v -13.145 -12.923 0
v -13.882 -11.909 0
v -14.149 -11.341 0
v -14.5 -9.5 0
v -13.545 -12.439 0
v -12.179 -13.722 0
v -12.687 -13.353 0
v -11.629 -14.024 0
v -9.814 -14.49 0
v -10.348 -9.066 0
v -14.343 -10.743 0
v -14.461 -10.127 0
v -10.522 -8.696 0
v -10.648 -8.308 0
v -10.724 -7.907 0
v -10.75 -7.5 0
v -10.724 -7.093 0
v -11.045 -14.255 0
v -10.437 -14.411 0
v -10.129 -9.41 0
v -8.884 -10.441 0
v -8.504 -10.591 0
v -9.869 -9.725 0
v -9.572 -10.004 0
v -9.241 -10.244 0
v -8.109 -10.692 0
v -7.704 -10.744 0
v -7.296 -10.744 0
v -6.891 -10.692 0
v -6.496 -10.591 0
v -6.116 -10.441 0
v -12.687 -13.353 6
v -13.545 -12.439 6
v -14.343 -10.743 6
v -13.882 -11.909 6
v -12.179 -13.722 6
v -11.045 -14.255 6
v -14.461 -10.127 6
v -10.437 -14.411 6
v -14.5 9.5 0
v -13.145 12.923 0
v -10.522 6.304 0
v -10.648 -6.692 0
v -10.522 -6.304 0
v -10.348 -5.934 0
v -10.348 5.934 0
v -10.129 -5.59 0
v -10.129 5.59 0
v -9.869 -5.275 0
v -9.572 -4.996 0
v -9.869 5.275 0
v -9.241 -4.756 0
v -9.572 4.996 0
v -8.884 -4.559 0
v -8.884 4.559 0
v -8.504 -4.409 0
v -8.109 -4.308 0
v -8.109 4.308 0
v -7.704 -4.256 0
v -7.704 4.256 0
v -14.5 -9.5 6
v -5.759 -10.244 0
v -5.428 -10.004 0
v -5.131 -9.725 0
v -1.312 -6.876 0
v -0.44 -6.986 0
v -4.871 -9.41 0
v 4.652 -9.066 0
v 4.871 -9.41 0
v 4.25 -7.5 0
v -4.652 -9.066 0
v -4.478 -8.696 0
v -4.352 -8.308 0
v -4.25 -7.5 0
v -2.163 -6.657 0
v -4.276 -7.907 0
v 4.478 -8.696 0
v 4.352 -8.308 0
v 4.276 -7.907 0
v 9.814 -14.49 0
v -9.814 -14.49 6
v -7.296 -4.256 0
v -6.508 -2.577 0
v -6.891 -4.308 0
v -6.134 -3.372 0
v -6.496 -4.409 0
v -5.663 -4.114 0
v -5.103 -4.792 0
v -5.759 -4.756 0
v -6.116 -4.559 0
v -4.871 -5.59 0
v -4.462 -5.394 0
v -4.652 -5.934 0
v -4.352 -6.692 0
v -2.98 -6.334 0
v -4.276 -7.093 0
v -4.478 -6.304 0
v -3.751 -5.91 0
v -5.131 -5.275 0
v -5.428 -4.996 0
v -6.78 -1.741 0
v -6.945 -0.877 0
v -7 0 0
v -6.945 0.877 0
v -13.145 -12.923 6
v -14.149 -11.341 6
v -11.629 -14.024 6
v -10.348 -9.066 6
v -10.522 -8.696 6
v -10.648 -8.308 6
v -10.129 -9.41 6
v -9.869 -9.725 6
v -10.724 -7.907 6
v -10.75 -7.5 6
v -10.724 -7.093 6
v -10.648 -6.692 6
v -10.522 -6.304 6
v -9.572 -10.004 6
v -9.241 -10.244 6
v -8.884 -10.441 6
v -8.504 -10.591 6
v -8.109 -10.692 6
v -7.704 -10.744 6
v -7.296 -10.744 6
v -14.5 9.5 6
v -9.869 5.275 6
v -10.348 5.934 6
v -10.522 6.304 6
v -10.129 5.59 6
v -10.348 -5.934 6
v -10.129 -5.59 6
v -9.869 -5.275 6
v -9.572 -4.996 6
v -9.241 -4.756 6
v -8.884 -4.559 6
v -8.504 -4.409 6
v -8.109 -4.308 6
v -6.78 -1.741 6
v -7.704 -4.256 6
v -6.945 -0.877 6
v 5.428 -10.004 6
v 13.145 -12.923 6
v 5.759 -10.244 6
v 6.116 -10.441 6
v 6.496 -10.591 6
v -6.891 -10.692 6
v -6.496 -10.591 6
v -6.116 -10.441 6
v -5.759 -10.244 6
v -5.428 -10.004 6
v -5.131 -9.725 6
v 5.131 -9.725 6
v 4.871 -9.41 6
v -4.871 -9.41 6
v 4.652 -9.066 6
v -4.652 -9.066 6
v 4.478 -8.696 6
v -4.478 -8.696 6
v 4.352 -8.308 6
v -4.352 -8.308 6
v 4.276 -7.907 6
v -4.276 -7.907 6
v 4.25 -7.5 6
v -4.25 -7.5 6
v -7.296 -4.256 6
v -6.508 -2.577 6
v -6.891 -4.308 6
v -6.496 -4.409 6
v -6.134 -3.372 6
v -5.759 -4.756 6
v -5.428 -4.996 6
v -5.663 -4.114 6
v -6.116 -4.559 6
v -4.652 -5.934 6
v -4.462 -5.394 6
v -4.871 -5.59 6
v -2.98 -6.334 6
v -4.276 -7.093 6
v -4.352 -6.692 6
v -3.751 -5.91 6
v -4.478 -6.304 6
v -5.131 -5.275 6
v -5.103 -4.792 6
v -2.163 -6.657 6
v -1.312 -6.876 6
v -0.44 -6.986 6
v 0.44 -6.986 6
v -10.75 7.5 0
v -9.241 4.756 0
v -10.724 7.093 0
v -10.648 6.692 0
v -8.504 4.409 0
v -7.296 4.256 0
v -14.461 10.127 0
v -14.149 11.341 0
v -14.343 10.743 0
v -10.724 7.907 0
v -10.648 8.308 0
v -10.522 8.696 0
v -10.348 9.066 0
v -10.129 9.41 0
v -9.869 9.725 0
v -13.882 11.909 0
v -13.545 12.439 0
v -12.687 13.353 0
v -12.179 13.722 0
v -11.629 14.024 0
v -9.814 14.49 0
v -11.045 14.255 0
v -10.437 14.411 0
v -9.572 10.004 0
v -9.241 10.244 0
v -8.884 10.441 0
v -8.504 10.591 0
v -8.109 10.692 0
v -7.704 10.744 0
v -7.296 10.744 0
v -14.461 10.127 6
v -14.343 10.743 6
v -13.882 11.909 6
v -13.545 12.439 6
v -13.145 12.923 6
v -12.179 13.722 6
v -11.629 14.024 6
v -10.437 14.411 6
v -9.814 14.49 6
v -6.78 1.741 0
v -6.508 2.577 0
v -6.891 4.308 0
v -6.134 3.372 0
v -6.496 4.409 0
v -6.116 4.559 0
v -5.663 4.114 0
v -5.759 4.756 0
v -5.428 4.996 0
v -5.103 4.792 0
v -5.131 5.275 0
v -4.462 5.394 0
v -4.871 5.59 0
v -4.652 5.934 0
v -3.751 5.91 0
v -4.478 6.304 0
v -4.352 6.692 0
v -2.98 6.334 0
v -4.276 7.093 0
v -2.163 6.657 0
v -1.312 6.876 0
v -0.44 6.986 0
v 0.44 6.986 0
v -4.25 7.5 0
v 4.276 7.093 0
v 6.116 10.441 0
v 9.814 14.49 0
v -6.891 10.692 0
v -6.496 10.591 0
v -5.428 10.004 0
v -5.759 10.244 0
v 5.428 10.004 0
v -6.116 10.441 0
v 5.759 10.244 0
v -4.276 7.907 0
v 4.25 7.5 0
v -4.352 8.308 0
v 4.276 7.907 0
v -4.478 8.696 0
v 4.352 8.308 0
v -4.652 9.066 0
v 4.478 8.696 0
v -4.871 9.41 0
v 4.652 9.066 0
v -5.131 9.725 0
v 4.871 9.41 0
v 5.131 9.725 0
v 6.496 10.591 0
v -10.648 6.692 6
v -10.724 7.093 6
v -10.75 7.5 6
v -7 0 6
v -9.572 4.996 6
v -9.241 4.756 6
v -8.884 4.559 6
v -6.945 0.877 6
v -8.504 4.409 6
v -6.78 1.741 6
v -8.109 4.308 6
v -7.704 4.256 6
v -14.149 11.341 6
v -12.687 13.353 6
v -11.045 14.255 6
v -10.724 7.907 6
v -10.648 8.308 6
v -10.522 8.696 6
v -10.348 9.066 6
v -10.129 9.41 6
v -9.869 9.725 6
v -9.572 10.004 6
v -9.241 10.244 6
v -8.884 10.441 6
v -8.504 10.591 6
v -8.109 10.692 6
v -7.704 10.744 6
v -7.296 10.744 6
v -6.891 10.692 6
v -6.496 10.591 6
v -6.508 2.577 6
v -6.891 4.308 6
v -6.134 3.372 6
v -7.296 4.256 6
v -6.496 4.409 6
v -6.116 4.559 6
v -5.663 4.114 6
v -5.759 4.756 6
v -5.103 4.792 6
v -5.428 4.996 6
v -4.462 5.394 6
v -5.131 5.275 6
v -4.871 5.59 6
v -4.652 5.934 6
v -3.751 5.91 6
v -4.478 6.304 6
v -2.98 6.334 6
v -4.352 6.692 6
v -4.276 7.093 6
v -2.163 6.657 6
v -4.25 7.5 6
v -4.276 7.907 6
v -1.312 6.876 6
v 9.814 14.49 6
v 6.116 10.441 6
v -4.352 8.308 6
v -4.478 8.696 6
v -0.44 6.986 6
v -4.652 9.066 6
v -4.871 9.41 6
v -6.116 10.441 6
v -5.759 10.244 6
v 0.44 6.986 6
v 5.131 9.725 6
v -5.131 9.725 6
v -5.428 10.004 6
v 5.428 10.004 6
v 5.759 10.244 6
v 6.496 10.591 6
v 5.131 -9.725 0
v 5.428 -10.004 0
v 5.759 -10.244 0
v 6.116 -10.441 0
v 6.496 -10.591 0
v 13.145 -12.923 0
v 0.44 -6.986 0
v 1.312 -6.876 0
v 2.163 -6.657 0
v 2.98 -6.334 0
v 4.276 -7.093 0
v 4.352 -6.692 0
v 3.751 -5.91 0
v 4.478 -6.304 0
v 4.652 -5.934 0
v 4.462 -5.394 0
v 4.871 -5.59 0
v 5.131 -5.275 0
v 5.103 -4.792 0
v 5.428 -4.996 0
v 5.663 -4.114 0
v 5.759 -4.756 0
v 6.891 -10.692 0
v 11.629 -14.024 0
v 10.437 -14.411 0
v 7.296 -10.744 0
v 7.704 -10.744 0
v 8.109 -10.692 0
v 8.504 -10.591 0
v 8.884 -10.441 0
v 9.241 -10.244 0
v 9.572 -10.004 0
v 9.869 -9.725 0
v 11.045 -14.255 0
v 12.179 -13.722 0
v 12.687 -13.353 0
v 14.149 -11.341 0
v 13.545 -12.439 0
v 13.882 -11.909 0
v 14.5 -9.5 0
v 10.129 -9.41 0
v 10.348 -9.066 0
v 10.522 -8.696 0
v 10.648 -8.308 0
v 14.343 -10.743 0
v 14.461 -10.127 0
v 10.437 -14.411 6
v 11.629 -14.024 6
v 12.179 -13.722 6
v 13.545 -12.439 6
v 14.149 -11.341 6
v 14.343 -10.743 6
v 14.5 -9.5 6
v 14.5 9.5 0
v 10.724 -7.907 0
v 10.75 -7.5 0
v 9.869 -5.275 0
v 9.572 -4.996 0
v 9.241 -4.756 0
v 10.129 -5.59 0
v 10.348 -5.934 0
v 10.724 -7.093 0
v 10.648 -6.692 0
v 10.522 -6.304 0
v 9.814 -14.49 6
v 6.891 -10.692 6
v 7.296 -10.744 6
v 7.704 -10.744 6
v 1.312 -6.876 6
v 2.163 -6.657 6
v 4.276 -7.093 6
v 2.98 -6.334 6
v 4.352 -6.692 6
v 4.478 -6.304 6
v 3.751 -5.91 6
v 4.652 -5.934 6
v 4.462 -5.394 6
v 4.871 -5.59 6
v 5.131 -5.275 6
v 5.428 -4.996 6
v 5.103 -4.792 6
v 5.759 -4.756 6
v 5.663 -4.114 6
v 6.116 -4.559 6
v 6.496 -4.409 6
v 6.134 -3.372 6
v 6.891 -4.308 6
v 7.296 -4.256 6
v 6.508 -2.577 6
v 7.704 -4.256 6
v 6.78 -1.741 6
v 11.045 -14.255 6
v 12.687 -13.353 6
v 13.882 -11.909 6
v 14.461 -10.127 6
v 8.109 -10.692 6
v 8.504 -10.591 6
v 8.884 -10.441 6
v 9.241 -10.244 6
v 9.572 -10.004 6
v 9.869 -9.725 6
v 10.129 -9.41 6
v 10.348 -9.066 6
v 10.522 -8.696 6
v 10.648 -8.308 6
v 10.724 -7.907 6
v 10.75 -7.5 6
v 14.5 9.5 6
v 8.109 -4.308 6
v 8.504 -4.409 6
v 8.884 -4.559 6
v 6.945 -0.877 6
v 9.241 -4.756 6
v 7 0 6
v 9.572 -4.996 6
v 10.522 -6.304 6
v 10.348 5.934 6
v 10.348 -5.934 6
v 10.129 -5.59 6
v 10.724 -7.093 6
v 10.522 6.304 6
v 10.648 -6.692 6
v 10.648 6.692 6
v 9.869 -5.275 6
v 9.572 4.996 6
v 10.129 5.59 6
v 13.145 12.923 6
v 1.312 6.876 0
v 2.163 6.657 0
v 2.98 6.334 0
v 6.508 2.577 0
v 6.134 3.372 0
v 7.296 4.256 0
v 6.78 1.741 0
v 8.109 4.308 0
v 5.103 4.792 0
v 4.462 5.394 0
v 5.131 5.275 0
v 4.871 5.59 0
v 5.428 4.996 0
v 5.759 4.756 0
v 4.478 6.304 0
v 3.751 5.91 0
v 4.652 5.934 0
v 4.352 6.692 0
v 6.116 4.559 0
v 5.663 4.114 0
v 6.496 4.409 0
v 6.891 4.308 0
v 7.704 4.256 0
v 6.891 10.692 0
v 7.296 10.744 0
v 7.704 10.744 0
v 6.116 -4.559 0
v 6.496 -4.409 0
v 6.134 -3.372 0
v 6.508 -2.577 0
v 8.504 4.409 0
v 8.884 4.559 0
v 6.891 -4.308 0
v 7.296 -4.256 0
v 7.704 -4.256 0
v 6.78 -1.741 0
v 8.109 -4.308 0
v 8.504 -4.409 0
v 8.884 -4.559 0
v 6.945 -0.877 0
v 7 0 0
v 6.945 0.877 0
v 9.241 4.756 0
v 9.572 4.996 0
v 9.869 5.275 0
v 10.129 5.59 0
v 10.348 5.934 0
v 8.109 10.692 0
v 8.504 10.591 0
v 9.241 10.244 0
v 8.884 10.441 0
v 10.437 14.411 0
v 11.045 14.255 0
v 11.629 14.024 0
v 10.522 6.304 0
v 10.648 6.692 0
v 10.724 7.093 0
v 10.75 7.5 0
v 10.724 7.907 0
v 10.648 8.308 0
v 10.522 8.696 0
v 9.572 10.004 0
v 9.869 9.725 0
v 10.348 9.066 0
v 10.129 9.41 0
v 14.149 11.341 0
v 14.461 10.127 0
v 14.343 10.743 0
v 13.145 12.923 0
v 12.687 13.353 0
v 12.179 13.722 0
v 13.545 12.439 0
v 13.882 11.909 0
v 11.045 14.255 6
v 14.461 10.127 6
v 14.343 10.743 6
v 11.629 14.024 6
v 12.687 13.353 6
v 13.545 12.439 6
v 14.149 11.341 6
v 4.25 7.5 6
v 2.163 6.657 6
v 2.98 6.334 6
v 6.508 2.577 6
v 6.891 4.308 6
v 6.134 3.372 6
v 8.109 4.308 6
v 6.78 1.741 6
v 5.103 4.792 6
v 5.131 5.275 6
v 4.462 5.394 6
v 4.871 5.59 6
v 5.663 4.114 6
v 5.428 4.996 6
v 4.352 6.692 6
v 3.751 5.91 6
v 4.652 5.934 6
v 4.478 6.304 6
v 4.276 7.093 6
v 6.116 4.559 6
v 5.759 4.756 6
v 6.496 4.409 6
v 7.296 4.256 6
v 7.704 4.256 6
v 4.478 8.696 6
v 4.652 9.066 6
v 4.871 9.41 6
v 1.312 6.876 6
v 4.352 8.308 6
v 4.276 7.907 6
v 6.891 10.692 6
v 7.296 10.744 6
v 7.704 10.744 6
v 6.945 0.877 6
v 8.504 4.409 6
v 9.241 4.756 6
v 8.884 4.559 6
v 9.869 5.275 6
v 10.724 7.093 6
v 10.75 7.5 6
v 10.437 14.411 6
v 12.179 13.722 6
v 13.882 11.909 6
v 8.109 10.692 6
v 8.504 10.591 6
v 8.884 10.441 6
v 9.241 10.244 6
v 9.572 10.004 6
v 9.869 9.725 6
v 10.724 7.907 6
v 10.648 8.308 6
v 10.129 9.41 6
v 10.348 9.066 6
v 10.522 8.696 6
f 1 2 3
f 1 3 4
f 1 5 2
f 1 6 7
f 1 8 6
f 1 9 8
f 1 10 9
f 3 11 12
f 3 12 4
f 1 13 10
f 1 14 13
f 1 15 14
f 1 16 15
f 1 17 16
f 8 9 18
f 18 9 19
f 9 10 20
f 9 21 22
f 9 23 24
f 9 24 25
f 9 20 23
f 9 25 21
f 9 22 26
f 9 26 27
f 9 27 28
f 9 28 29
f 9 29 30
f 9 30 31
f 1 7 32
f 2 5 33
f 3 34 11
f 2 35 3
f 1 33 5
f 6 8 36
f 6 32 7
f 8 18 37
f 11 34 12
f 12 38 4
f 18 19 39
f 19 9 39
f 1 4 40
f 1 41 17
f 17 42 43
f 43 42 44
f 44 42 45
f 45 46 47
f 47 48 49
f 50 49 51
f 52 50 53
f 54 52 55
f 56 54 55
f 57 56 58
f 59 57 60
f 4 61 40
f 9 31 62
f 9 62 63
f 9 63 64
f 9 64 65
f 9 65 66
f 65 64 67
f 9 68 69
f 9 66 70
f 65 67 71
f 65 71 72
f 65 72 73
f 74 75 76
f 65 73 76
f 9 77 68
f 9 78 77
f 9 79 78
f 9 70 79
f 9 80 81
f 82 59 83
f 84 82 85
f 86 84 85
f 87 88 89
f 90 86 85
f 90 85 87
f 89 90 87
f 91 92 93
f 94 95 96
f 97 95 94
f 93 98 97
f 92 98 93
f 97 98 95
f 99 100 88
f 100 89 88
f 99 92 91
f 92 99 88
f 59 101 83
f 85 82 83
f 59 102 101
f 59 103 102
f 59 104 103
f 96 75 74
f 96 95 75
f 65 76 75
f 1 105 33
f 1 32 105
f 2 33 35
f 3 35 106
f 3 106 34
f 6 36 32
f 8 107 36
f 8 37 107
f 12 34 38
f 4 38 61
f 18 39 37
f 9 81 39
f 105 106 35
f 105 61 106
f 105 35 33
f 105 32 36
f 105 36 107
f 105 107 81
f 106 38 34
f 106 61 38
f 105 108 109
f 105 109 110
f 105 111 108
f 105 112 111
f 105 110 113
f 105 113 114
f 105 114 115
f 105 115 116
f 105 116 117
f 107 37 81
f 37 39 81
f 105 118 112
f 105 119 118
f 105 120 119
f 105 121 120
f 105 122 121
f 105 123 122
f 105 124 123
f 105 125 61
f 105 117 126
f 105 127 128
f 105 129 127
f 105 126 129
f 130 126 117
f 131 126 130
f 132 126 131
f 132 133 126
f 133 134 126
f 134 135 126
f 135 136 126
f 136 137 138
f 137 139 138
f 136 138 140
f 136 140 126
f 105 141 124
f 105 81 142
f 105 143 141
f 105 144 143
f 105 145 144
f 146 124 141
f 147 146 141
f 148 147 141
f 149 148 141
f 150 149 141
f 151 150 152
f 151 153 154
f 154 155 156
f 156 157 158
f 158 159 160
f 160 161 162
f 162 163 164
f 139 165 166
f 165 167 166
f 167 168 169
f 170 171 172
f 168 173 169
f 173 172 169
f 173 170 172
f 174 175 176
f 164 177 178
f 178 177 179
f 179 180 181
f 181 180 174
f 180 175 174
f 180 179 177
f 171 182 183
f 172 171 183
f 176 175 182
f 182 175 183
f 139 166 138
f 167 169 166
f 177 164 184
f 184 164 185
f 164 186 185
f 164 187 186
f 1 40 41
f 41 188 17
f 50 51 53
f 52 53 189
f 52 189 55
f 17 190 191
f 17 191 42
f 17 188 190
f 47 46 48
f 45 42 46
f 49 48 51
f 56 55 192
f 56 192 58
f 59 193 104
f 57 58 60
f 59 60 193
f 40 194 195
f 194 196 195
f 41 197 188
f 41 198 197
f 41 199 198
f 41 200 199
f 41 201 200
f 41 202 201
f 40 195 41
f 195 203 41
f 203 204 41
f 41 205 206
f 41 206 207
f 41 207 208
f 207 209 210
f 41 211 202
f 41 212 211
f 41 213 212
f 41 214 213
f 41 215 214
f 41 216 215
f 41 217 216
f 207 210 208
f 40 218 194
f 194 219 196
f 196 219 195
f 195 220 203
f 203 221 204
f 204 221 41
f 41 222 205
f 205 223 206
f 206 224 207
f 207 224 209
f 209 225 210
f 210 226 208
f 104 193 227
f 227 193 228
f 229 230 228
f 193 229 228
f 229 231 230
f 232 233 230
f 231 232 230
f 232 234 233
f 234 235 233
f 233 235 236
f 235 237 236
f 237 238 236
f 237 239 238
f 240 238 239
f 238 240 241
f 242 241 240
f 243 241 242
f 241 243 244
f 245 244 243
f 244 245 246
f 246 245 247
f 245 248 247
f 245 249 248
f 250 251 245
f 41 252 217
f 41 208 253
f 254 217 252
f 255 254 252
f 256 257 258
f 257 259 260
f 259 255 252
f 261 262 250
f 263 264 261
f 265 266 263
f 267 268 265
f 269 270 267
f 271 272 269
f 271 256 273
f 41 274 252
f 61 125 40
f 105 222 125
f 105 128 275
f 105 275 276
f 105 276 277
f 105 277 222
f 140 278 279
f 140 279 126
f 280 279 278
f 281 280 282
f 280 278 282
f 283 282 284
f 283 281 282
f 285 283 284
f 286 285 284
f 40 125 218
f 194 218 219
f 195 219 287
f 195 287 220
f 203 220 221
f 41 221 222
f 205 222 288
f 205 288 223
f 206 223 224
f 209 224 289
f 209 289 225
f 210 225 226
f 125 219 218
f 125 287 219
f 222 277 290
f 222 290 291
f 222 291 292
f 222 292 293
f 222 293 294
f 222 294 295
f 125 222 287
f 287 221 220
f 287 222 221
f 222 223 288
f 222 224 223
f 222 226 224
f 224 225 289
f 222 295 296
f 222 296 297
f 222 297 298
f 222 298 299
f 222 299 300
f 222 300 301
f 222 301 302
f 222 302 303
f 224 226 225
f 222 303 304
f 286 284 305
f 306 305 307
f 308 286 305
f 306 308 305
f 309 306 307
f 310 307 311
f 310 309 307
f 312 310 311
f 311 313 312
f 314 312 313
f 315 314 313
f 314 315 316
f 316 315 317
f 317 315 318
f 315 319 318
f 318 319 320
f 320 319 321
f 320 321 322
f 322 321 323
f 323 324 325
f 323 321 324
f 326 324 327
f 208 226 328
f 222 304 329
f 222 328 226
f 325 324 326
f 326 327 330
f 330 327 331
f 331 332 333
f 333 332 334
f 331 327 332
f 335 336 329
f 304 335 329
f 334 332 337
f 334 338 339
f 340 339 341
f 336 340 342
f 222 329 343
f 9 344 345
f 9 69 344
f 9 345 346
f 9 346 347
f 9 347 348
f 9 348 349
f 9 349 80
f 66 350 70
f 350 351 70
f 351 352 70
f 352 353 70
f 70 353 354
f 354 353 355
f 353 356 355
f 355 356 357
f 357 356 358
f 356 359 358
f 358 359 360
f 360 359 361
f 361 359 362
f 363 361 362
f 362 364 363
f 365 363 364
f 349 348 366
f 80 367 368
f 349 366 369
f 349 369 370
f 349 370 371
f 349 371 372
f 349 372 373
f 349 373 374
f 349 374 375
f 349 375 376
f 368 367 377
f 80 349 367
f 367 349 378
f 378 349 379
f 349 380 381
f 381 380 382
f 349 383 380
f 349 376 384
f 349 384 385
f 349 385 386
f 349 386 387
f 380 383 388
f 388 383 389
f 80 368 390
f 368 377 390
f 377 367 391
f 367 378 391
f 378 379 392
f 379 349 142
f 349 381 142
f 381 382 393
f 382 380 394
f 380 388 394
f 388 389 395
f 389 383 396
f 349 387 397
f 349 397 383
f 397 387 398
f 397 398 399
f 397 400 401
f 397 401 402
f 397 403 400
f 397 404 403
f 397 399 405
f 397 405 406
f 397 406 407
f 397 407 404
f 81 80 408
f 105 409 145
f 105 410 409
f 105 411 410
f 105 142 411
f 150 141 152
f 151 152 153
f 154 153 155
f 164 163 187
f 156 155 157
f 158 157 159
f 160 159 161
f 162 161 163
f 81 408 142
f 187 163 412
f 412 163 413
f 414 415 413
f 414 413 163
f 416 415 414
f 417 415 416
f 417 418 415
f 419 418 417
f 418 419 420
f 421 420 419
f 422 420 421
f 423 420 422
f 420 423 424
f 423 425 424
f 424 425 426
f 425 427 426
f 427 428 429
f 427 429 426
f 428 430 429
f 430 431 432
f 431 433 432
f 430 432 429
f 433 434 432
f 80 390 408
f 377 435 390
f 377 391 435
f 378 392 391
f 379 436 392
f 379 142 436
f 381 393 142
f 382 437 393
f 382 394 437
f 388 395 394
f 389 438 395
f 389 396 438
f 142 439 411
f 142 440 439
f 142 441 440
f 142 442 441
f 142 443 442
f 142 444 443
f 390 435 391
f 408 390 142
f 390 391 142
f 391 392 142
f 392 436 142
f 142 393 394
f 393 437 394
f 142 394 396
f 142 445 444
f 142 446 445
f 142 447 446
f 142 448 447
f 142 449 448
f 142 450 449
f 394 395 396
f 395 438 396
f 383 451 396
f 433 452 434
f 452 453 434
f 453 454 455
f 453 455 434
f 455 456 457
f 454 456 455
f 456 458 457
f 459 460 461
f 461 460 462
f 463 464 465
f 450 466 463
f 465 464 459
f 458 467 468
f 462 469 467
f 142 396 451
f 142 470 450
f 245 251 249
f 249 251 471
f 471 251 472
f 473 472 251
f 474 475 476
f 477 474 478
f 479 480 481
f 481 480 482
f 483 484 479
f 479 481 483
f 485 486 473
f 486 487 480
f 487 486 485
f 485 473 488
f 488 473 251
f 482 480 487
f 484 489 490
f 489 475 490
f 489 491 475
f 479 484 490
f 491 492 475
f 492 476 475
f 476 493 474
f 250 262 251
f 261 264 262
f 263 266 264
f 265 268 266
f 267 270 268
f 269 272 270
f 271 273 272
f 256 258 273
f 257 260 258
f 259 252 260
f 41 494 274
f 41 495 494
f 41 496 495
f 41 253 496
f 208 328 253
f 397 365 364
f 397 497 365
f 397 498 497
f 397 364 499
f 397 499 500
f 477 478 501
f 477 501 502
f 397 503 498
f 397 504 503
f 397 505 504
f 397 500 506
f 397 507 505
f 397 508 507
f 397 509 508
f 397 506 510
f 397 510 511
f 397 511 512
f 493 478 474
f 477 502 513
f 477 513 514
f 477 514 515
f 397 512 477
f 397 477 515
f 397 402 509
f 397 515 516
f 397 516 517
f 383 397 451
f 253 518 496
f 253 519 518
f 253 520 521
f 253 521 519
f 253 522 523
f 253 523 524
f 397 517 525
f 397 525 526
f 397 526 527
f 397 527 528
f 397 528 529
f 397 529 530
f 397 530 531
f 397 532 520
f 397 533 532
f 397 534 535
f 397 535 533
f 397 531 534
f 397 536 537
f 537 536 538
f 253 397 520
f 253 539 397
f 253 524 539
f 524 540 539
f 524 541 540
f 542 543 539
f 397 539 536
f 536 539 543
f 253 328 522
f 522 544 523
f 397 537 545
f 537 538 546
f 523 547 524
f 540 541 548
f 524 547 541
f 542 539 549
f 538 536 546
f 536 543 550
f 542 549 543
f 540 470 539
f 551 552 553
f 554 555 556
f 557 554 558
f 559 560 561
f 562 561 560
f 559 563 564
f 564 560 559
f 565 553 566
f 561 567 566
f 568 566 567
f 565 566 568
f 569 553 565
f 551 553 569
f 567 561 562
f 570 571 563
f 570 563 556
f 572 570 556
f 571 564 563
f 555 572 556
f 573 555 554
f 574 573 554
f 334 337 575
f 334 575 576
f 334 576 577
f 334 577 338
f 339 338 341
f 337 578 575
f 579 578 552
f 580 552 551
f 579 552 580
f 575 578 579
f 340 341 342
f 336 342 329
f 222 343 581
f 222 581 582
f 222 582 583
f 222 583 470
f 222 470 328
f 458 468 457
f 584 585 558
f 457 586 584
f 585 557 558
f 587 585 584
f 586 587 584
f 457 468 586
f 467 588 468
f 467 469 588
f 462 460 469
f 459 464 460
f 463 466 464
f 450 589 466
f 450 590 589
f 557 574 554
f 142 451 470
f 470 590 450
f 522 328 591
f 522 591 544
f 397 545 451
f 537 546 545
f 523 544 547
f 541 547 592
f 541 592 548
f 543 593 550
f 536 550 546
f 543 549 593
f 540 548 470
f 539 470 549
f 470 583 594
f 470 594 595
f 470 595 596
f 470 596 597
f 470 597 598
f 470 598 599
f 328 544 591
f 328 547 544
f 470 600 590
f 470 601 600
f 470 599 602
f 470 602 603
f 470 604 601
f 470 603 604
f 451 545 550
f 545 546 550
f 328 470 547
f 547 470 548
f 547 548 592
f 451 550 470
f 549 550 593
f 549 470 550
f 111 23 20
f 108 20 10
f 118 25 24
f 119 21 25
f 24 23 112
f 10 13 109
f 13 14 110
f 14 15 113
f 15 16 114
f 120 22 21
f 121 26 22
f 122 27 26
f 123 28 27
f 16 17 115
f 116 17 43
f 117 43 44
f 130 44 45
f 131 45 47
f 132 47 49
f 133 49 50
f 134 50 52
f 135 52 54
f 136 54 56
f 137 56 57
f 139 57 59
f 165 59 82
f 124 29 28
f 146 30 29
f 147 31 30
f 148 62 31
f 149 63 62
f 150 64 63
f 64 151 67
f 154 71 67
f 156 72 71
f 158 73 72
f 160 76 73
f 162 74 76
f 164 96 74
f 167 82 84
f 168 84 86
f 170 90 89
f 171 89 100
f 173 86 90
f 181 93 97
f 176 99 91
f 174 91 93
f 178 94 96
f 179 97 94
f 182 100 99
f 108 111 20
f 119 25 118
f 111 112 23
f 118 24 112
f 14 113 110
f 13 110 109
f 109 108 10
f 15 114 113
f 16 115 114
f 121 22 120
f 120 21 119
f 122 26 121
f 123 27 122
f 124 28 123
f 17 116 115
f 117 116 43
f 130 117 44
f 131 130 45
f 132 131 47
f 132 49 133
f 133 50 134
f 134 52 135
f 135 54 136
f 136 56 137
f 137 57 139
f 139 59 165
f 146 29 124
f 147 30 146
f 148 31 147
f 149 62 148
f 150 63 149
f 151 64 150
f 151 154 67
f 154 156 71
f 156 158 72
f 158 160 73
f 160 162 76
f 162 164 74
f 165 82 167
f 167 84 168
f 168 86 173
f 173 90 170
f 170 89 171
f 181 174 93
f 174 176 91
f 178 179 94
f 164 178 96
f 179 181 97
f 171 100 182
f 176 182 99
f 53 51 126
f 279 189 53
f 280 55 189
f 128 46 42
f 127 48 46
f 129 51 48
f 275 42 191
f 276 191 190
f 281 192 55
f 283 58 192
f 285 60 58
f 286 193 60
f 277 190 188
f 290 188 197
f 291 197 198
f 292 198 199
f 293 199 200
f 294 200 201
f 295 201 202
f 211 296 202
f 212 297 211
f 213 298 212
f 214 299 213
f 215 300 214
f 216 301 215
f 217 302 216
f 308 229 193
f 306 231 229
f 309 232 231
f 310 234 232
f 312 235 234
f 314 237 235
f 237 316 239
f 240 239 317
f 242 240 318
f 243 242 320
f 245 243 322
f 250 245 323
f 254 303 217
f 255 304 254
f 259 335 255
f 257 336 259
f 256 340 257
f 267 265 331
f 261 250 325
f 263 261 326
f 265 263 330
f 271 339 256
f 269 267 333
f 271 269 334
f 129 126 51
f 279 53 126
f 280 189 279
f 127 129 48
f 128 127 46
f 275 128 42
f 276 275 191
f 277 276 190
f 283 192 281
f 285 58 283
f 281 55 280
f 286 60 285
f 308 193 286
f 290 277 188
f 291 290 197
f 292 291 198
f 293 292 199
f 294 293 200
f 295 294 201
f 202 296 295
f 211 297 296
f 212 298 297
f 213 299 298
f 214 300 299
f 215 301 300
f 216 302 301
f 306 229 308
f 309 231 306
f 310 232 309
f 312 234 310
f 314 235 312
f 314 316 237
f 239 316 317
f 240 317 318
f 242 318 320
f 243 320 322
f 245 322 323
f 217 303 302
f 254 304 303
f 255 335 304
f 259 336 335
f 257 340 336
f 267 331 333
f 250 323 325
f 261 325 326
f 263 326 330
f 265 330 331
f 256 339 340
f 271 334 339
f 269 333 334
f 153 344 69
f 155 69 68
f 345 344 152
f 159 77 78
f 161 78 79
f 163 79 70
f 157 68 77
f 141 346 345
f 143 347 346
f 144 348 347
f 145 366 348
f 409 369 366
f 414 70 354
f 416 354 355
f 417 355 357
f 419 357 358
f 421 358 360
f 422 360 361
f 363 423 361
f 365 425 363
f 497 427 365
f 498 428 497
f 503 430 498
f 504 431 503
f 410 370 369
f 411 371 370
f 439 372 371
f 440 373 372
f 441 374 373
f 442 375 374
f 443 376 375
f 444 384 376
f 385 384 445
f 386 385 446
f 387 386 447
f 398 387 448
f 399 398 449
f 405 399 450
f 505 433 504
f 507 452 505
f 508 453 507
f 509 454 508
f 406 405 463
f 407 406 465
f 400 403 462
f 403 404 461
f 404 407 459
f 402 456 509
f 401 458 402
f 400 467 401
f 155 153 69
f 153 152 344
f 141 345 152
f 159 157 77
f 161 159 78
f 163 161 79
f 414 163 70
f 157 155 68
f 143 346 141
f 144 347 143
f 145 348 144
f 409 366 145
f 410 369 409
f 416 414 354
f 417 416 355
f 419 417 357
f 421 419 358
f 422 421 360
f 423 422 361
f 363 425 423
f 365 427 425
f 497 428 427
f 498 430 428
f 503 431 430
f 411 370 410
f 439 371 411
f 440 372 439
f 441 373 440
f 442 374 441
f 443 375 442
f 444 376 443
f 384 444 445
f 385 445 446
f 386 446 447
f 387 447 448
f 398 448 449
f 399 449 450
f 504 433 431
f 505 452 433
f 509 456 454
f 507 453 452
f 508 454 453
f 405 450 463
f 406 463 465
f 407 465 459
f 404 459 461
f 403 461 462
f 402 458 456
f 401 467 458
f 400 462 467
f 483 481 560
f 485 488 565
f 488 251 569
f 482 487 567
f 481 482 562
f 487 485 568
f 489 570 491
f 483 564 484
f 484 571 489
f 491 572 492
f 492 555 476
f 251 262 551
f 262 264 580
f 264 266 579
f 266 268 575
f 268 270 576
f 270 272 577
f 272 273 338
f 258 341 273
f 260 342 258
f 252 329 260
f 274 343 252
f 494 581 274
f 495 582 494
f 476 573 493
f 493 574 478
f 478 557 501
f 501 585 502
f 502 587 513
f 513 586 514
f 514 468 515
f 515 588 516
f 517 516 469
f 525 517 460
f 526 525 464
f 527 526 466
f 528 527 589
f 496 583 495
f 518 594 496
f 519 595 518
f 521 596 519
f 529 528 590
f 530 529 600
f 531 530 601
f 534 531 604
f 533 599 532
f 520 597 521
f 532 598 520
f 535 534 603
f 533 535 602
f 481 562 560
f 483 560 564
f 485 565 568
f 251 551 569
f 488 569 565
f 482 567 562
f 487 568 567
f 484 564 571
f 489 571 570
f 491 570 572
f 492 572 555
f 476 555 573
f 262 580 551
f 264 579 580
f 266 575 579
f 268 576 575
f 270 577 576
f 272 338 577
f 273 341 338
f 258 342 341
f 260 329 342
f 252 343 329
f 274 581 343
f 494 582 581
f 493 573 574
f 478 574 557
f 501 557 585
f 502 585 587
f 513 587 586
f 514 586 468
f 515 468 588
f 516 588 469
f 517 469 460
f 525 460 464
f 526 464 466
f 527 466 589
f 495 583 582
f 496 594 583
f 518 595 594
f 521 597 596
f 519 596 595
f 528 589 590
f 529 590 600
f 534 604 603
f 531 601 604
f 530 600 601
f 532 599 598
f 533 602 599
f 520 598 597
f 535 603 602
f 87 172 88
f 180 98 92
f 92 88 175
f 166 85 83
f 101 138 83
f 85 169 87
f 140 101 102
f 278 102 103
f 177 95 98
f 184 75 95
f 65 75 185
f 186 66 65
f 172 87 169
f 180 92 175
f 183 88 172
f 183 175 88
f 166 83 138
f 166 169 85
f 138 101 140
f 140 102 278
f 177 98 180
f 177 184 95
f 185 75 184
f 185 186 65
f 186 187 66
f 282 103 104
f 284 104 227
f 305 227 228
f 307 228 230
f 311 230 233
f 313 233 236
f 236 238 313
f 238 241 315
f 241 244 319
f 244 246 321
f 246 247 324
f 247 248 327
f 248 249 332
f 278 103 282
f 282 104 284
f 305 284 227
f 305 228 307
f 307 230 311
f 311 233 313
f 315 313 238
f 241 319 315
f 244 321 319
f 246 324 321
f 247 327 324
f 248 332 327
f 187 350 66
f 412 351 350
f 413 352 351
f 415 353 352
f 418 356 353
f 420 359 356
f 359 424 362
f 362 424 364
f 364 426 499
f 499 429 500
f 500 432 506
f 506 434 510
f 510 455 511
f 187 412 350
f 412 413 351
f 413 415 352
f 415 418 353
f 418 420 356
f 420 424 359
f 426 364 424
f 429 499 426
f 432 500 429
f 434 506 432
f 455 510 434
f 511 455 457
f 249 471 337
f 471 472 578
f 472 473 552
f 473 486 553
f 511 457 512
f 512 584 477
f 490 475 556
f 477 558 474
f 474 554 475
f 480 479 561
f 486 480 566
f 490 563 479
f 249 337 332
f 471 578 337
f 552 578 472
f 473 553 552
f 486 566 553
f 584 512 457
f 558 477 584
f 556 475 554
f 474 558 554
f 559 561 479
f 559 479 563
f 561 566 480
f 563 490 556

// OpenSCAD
$fn = 50;

difference() {
	union() {
		hull() {
			translate(v = [-9.5, 9.5, 0]) {
				cylinder(h = 6, r = 5);
			}
			translate(v = [9.5, 9.5, 0]) {
				cylinder(h = 6, r = 5);
			}
			translate(v = [-9.5, -9.5, 0]) {
				cylinder(h = 6, r = 5);
			}
			translate(v = [9.5, -9.5, 0]) {
				cylinder(h = 6, r = 5);
			}
		}
	}
	union() {
		translate(v = [-7.5, -7.5, -100.0]) {
			cylinder(h = 200, r = 3.25);
		}
		translate(v = [-7.5, 7.5, -100.0]) {
			cylinder(h = 200, r = 3.25);
		}
		translate(v = [7.5, -7.5, -100.0]) {
			cylinder(h = 200, r = 3.25);
		}
		translate(v = [7.5, 7.5, -100.0]) {
			cylinder(h = 200, r = 3.25);
		}
		translate(v = [-7.5, -7.5, -100.0]) {
			cylinder(h = 200, r = 1.8);
		}
		translate(v = [-7.5, 7.5, -100.0]) {
			cylinder(h = 200, r = 1.8);
		}
		translate(v = [7.5, -7.5, -100.0]) {
			cylinder(h = 200, r = 1.8);
		}
		translate(v = [7.5, 7.5, -100.0]) {
			cylinder(h = 200, r = 1.8);
		}
		cylinder(h = 6, r = 7.0);
	}
}
